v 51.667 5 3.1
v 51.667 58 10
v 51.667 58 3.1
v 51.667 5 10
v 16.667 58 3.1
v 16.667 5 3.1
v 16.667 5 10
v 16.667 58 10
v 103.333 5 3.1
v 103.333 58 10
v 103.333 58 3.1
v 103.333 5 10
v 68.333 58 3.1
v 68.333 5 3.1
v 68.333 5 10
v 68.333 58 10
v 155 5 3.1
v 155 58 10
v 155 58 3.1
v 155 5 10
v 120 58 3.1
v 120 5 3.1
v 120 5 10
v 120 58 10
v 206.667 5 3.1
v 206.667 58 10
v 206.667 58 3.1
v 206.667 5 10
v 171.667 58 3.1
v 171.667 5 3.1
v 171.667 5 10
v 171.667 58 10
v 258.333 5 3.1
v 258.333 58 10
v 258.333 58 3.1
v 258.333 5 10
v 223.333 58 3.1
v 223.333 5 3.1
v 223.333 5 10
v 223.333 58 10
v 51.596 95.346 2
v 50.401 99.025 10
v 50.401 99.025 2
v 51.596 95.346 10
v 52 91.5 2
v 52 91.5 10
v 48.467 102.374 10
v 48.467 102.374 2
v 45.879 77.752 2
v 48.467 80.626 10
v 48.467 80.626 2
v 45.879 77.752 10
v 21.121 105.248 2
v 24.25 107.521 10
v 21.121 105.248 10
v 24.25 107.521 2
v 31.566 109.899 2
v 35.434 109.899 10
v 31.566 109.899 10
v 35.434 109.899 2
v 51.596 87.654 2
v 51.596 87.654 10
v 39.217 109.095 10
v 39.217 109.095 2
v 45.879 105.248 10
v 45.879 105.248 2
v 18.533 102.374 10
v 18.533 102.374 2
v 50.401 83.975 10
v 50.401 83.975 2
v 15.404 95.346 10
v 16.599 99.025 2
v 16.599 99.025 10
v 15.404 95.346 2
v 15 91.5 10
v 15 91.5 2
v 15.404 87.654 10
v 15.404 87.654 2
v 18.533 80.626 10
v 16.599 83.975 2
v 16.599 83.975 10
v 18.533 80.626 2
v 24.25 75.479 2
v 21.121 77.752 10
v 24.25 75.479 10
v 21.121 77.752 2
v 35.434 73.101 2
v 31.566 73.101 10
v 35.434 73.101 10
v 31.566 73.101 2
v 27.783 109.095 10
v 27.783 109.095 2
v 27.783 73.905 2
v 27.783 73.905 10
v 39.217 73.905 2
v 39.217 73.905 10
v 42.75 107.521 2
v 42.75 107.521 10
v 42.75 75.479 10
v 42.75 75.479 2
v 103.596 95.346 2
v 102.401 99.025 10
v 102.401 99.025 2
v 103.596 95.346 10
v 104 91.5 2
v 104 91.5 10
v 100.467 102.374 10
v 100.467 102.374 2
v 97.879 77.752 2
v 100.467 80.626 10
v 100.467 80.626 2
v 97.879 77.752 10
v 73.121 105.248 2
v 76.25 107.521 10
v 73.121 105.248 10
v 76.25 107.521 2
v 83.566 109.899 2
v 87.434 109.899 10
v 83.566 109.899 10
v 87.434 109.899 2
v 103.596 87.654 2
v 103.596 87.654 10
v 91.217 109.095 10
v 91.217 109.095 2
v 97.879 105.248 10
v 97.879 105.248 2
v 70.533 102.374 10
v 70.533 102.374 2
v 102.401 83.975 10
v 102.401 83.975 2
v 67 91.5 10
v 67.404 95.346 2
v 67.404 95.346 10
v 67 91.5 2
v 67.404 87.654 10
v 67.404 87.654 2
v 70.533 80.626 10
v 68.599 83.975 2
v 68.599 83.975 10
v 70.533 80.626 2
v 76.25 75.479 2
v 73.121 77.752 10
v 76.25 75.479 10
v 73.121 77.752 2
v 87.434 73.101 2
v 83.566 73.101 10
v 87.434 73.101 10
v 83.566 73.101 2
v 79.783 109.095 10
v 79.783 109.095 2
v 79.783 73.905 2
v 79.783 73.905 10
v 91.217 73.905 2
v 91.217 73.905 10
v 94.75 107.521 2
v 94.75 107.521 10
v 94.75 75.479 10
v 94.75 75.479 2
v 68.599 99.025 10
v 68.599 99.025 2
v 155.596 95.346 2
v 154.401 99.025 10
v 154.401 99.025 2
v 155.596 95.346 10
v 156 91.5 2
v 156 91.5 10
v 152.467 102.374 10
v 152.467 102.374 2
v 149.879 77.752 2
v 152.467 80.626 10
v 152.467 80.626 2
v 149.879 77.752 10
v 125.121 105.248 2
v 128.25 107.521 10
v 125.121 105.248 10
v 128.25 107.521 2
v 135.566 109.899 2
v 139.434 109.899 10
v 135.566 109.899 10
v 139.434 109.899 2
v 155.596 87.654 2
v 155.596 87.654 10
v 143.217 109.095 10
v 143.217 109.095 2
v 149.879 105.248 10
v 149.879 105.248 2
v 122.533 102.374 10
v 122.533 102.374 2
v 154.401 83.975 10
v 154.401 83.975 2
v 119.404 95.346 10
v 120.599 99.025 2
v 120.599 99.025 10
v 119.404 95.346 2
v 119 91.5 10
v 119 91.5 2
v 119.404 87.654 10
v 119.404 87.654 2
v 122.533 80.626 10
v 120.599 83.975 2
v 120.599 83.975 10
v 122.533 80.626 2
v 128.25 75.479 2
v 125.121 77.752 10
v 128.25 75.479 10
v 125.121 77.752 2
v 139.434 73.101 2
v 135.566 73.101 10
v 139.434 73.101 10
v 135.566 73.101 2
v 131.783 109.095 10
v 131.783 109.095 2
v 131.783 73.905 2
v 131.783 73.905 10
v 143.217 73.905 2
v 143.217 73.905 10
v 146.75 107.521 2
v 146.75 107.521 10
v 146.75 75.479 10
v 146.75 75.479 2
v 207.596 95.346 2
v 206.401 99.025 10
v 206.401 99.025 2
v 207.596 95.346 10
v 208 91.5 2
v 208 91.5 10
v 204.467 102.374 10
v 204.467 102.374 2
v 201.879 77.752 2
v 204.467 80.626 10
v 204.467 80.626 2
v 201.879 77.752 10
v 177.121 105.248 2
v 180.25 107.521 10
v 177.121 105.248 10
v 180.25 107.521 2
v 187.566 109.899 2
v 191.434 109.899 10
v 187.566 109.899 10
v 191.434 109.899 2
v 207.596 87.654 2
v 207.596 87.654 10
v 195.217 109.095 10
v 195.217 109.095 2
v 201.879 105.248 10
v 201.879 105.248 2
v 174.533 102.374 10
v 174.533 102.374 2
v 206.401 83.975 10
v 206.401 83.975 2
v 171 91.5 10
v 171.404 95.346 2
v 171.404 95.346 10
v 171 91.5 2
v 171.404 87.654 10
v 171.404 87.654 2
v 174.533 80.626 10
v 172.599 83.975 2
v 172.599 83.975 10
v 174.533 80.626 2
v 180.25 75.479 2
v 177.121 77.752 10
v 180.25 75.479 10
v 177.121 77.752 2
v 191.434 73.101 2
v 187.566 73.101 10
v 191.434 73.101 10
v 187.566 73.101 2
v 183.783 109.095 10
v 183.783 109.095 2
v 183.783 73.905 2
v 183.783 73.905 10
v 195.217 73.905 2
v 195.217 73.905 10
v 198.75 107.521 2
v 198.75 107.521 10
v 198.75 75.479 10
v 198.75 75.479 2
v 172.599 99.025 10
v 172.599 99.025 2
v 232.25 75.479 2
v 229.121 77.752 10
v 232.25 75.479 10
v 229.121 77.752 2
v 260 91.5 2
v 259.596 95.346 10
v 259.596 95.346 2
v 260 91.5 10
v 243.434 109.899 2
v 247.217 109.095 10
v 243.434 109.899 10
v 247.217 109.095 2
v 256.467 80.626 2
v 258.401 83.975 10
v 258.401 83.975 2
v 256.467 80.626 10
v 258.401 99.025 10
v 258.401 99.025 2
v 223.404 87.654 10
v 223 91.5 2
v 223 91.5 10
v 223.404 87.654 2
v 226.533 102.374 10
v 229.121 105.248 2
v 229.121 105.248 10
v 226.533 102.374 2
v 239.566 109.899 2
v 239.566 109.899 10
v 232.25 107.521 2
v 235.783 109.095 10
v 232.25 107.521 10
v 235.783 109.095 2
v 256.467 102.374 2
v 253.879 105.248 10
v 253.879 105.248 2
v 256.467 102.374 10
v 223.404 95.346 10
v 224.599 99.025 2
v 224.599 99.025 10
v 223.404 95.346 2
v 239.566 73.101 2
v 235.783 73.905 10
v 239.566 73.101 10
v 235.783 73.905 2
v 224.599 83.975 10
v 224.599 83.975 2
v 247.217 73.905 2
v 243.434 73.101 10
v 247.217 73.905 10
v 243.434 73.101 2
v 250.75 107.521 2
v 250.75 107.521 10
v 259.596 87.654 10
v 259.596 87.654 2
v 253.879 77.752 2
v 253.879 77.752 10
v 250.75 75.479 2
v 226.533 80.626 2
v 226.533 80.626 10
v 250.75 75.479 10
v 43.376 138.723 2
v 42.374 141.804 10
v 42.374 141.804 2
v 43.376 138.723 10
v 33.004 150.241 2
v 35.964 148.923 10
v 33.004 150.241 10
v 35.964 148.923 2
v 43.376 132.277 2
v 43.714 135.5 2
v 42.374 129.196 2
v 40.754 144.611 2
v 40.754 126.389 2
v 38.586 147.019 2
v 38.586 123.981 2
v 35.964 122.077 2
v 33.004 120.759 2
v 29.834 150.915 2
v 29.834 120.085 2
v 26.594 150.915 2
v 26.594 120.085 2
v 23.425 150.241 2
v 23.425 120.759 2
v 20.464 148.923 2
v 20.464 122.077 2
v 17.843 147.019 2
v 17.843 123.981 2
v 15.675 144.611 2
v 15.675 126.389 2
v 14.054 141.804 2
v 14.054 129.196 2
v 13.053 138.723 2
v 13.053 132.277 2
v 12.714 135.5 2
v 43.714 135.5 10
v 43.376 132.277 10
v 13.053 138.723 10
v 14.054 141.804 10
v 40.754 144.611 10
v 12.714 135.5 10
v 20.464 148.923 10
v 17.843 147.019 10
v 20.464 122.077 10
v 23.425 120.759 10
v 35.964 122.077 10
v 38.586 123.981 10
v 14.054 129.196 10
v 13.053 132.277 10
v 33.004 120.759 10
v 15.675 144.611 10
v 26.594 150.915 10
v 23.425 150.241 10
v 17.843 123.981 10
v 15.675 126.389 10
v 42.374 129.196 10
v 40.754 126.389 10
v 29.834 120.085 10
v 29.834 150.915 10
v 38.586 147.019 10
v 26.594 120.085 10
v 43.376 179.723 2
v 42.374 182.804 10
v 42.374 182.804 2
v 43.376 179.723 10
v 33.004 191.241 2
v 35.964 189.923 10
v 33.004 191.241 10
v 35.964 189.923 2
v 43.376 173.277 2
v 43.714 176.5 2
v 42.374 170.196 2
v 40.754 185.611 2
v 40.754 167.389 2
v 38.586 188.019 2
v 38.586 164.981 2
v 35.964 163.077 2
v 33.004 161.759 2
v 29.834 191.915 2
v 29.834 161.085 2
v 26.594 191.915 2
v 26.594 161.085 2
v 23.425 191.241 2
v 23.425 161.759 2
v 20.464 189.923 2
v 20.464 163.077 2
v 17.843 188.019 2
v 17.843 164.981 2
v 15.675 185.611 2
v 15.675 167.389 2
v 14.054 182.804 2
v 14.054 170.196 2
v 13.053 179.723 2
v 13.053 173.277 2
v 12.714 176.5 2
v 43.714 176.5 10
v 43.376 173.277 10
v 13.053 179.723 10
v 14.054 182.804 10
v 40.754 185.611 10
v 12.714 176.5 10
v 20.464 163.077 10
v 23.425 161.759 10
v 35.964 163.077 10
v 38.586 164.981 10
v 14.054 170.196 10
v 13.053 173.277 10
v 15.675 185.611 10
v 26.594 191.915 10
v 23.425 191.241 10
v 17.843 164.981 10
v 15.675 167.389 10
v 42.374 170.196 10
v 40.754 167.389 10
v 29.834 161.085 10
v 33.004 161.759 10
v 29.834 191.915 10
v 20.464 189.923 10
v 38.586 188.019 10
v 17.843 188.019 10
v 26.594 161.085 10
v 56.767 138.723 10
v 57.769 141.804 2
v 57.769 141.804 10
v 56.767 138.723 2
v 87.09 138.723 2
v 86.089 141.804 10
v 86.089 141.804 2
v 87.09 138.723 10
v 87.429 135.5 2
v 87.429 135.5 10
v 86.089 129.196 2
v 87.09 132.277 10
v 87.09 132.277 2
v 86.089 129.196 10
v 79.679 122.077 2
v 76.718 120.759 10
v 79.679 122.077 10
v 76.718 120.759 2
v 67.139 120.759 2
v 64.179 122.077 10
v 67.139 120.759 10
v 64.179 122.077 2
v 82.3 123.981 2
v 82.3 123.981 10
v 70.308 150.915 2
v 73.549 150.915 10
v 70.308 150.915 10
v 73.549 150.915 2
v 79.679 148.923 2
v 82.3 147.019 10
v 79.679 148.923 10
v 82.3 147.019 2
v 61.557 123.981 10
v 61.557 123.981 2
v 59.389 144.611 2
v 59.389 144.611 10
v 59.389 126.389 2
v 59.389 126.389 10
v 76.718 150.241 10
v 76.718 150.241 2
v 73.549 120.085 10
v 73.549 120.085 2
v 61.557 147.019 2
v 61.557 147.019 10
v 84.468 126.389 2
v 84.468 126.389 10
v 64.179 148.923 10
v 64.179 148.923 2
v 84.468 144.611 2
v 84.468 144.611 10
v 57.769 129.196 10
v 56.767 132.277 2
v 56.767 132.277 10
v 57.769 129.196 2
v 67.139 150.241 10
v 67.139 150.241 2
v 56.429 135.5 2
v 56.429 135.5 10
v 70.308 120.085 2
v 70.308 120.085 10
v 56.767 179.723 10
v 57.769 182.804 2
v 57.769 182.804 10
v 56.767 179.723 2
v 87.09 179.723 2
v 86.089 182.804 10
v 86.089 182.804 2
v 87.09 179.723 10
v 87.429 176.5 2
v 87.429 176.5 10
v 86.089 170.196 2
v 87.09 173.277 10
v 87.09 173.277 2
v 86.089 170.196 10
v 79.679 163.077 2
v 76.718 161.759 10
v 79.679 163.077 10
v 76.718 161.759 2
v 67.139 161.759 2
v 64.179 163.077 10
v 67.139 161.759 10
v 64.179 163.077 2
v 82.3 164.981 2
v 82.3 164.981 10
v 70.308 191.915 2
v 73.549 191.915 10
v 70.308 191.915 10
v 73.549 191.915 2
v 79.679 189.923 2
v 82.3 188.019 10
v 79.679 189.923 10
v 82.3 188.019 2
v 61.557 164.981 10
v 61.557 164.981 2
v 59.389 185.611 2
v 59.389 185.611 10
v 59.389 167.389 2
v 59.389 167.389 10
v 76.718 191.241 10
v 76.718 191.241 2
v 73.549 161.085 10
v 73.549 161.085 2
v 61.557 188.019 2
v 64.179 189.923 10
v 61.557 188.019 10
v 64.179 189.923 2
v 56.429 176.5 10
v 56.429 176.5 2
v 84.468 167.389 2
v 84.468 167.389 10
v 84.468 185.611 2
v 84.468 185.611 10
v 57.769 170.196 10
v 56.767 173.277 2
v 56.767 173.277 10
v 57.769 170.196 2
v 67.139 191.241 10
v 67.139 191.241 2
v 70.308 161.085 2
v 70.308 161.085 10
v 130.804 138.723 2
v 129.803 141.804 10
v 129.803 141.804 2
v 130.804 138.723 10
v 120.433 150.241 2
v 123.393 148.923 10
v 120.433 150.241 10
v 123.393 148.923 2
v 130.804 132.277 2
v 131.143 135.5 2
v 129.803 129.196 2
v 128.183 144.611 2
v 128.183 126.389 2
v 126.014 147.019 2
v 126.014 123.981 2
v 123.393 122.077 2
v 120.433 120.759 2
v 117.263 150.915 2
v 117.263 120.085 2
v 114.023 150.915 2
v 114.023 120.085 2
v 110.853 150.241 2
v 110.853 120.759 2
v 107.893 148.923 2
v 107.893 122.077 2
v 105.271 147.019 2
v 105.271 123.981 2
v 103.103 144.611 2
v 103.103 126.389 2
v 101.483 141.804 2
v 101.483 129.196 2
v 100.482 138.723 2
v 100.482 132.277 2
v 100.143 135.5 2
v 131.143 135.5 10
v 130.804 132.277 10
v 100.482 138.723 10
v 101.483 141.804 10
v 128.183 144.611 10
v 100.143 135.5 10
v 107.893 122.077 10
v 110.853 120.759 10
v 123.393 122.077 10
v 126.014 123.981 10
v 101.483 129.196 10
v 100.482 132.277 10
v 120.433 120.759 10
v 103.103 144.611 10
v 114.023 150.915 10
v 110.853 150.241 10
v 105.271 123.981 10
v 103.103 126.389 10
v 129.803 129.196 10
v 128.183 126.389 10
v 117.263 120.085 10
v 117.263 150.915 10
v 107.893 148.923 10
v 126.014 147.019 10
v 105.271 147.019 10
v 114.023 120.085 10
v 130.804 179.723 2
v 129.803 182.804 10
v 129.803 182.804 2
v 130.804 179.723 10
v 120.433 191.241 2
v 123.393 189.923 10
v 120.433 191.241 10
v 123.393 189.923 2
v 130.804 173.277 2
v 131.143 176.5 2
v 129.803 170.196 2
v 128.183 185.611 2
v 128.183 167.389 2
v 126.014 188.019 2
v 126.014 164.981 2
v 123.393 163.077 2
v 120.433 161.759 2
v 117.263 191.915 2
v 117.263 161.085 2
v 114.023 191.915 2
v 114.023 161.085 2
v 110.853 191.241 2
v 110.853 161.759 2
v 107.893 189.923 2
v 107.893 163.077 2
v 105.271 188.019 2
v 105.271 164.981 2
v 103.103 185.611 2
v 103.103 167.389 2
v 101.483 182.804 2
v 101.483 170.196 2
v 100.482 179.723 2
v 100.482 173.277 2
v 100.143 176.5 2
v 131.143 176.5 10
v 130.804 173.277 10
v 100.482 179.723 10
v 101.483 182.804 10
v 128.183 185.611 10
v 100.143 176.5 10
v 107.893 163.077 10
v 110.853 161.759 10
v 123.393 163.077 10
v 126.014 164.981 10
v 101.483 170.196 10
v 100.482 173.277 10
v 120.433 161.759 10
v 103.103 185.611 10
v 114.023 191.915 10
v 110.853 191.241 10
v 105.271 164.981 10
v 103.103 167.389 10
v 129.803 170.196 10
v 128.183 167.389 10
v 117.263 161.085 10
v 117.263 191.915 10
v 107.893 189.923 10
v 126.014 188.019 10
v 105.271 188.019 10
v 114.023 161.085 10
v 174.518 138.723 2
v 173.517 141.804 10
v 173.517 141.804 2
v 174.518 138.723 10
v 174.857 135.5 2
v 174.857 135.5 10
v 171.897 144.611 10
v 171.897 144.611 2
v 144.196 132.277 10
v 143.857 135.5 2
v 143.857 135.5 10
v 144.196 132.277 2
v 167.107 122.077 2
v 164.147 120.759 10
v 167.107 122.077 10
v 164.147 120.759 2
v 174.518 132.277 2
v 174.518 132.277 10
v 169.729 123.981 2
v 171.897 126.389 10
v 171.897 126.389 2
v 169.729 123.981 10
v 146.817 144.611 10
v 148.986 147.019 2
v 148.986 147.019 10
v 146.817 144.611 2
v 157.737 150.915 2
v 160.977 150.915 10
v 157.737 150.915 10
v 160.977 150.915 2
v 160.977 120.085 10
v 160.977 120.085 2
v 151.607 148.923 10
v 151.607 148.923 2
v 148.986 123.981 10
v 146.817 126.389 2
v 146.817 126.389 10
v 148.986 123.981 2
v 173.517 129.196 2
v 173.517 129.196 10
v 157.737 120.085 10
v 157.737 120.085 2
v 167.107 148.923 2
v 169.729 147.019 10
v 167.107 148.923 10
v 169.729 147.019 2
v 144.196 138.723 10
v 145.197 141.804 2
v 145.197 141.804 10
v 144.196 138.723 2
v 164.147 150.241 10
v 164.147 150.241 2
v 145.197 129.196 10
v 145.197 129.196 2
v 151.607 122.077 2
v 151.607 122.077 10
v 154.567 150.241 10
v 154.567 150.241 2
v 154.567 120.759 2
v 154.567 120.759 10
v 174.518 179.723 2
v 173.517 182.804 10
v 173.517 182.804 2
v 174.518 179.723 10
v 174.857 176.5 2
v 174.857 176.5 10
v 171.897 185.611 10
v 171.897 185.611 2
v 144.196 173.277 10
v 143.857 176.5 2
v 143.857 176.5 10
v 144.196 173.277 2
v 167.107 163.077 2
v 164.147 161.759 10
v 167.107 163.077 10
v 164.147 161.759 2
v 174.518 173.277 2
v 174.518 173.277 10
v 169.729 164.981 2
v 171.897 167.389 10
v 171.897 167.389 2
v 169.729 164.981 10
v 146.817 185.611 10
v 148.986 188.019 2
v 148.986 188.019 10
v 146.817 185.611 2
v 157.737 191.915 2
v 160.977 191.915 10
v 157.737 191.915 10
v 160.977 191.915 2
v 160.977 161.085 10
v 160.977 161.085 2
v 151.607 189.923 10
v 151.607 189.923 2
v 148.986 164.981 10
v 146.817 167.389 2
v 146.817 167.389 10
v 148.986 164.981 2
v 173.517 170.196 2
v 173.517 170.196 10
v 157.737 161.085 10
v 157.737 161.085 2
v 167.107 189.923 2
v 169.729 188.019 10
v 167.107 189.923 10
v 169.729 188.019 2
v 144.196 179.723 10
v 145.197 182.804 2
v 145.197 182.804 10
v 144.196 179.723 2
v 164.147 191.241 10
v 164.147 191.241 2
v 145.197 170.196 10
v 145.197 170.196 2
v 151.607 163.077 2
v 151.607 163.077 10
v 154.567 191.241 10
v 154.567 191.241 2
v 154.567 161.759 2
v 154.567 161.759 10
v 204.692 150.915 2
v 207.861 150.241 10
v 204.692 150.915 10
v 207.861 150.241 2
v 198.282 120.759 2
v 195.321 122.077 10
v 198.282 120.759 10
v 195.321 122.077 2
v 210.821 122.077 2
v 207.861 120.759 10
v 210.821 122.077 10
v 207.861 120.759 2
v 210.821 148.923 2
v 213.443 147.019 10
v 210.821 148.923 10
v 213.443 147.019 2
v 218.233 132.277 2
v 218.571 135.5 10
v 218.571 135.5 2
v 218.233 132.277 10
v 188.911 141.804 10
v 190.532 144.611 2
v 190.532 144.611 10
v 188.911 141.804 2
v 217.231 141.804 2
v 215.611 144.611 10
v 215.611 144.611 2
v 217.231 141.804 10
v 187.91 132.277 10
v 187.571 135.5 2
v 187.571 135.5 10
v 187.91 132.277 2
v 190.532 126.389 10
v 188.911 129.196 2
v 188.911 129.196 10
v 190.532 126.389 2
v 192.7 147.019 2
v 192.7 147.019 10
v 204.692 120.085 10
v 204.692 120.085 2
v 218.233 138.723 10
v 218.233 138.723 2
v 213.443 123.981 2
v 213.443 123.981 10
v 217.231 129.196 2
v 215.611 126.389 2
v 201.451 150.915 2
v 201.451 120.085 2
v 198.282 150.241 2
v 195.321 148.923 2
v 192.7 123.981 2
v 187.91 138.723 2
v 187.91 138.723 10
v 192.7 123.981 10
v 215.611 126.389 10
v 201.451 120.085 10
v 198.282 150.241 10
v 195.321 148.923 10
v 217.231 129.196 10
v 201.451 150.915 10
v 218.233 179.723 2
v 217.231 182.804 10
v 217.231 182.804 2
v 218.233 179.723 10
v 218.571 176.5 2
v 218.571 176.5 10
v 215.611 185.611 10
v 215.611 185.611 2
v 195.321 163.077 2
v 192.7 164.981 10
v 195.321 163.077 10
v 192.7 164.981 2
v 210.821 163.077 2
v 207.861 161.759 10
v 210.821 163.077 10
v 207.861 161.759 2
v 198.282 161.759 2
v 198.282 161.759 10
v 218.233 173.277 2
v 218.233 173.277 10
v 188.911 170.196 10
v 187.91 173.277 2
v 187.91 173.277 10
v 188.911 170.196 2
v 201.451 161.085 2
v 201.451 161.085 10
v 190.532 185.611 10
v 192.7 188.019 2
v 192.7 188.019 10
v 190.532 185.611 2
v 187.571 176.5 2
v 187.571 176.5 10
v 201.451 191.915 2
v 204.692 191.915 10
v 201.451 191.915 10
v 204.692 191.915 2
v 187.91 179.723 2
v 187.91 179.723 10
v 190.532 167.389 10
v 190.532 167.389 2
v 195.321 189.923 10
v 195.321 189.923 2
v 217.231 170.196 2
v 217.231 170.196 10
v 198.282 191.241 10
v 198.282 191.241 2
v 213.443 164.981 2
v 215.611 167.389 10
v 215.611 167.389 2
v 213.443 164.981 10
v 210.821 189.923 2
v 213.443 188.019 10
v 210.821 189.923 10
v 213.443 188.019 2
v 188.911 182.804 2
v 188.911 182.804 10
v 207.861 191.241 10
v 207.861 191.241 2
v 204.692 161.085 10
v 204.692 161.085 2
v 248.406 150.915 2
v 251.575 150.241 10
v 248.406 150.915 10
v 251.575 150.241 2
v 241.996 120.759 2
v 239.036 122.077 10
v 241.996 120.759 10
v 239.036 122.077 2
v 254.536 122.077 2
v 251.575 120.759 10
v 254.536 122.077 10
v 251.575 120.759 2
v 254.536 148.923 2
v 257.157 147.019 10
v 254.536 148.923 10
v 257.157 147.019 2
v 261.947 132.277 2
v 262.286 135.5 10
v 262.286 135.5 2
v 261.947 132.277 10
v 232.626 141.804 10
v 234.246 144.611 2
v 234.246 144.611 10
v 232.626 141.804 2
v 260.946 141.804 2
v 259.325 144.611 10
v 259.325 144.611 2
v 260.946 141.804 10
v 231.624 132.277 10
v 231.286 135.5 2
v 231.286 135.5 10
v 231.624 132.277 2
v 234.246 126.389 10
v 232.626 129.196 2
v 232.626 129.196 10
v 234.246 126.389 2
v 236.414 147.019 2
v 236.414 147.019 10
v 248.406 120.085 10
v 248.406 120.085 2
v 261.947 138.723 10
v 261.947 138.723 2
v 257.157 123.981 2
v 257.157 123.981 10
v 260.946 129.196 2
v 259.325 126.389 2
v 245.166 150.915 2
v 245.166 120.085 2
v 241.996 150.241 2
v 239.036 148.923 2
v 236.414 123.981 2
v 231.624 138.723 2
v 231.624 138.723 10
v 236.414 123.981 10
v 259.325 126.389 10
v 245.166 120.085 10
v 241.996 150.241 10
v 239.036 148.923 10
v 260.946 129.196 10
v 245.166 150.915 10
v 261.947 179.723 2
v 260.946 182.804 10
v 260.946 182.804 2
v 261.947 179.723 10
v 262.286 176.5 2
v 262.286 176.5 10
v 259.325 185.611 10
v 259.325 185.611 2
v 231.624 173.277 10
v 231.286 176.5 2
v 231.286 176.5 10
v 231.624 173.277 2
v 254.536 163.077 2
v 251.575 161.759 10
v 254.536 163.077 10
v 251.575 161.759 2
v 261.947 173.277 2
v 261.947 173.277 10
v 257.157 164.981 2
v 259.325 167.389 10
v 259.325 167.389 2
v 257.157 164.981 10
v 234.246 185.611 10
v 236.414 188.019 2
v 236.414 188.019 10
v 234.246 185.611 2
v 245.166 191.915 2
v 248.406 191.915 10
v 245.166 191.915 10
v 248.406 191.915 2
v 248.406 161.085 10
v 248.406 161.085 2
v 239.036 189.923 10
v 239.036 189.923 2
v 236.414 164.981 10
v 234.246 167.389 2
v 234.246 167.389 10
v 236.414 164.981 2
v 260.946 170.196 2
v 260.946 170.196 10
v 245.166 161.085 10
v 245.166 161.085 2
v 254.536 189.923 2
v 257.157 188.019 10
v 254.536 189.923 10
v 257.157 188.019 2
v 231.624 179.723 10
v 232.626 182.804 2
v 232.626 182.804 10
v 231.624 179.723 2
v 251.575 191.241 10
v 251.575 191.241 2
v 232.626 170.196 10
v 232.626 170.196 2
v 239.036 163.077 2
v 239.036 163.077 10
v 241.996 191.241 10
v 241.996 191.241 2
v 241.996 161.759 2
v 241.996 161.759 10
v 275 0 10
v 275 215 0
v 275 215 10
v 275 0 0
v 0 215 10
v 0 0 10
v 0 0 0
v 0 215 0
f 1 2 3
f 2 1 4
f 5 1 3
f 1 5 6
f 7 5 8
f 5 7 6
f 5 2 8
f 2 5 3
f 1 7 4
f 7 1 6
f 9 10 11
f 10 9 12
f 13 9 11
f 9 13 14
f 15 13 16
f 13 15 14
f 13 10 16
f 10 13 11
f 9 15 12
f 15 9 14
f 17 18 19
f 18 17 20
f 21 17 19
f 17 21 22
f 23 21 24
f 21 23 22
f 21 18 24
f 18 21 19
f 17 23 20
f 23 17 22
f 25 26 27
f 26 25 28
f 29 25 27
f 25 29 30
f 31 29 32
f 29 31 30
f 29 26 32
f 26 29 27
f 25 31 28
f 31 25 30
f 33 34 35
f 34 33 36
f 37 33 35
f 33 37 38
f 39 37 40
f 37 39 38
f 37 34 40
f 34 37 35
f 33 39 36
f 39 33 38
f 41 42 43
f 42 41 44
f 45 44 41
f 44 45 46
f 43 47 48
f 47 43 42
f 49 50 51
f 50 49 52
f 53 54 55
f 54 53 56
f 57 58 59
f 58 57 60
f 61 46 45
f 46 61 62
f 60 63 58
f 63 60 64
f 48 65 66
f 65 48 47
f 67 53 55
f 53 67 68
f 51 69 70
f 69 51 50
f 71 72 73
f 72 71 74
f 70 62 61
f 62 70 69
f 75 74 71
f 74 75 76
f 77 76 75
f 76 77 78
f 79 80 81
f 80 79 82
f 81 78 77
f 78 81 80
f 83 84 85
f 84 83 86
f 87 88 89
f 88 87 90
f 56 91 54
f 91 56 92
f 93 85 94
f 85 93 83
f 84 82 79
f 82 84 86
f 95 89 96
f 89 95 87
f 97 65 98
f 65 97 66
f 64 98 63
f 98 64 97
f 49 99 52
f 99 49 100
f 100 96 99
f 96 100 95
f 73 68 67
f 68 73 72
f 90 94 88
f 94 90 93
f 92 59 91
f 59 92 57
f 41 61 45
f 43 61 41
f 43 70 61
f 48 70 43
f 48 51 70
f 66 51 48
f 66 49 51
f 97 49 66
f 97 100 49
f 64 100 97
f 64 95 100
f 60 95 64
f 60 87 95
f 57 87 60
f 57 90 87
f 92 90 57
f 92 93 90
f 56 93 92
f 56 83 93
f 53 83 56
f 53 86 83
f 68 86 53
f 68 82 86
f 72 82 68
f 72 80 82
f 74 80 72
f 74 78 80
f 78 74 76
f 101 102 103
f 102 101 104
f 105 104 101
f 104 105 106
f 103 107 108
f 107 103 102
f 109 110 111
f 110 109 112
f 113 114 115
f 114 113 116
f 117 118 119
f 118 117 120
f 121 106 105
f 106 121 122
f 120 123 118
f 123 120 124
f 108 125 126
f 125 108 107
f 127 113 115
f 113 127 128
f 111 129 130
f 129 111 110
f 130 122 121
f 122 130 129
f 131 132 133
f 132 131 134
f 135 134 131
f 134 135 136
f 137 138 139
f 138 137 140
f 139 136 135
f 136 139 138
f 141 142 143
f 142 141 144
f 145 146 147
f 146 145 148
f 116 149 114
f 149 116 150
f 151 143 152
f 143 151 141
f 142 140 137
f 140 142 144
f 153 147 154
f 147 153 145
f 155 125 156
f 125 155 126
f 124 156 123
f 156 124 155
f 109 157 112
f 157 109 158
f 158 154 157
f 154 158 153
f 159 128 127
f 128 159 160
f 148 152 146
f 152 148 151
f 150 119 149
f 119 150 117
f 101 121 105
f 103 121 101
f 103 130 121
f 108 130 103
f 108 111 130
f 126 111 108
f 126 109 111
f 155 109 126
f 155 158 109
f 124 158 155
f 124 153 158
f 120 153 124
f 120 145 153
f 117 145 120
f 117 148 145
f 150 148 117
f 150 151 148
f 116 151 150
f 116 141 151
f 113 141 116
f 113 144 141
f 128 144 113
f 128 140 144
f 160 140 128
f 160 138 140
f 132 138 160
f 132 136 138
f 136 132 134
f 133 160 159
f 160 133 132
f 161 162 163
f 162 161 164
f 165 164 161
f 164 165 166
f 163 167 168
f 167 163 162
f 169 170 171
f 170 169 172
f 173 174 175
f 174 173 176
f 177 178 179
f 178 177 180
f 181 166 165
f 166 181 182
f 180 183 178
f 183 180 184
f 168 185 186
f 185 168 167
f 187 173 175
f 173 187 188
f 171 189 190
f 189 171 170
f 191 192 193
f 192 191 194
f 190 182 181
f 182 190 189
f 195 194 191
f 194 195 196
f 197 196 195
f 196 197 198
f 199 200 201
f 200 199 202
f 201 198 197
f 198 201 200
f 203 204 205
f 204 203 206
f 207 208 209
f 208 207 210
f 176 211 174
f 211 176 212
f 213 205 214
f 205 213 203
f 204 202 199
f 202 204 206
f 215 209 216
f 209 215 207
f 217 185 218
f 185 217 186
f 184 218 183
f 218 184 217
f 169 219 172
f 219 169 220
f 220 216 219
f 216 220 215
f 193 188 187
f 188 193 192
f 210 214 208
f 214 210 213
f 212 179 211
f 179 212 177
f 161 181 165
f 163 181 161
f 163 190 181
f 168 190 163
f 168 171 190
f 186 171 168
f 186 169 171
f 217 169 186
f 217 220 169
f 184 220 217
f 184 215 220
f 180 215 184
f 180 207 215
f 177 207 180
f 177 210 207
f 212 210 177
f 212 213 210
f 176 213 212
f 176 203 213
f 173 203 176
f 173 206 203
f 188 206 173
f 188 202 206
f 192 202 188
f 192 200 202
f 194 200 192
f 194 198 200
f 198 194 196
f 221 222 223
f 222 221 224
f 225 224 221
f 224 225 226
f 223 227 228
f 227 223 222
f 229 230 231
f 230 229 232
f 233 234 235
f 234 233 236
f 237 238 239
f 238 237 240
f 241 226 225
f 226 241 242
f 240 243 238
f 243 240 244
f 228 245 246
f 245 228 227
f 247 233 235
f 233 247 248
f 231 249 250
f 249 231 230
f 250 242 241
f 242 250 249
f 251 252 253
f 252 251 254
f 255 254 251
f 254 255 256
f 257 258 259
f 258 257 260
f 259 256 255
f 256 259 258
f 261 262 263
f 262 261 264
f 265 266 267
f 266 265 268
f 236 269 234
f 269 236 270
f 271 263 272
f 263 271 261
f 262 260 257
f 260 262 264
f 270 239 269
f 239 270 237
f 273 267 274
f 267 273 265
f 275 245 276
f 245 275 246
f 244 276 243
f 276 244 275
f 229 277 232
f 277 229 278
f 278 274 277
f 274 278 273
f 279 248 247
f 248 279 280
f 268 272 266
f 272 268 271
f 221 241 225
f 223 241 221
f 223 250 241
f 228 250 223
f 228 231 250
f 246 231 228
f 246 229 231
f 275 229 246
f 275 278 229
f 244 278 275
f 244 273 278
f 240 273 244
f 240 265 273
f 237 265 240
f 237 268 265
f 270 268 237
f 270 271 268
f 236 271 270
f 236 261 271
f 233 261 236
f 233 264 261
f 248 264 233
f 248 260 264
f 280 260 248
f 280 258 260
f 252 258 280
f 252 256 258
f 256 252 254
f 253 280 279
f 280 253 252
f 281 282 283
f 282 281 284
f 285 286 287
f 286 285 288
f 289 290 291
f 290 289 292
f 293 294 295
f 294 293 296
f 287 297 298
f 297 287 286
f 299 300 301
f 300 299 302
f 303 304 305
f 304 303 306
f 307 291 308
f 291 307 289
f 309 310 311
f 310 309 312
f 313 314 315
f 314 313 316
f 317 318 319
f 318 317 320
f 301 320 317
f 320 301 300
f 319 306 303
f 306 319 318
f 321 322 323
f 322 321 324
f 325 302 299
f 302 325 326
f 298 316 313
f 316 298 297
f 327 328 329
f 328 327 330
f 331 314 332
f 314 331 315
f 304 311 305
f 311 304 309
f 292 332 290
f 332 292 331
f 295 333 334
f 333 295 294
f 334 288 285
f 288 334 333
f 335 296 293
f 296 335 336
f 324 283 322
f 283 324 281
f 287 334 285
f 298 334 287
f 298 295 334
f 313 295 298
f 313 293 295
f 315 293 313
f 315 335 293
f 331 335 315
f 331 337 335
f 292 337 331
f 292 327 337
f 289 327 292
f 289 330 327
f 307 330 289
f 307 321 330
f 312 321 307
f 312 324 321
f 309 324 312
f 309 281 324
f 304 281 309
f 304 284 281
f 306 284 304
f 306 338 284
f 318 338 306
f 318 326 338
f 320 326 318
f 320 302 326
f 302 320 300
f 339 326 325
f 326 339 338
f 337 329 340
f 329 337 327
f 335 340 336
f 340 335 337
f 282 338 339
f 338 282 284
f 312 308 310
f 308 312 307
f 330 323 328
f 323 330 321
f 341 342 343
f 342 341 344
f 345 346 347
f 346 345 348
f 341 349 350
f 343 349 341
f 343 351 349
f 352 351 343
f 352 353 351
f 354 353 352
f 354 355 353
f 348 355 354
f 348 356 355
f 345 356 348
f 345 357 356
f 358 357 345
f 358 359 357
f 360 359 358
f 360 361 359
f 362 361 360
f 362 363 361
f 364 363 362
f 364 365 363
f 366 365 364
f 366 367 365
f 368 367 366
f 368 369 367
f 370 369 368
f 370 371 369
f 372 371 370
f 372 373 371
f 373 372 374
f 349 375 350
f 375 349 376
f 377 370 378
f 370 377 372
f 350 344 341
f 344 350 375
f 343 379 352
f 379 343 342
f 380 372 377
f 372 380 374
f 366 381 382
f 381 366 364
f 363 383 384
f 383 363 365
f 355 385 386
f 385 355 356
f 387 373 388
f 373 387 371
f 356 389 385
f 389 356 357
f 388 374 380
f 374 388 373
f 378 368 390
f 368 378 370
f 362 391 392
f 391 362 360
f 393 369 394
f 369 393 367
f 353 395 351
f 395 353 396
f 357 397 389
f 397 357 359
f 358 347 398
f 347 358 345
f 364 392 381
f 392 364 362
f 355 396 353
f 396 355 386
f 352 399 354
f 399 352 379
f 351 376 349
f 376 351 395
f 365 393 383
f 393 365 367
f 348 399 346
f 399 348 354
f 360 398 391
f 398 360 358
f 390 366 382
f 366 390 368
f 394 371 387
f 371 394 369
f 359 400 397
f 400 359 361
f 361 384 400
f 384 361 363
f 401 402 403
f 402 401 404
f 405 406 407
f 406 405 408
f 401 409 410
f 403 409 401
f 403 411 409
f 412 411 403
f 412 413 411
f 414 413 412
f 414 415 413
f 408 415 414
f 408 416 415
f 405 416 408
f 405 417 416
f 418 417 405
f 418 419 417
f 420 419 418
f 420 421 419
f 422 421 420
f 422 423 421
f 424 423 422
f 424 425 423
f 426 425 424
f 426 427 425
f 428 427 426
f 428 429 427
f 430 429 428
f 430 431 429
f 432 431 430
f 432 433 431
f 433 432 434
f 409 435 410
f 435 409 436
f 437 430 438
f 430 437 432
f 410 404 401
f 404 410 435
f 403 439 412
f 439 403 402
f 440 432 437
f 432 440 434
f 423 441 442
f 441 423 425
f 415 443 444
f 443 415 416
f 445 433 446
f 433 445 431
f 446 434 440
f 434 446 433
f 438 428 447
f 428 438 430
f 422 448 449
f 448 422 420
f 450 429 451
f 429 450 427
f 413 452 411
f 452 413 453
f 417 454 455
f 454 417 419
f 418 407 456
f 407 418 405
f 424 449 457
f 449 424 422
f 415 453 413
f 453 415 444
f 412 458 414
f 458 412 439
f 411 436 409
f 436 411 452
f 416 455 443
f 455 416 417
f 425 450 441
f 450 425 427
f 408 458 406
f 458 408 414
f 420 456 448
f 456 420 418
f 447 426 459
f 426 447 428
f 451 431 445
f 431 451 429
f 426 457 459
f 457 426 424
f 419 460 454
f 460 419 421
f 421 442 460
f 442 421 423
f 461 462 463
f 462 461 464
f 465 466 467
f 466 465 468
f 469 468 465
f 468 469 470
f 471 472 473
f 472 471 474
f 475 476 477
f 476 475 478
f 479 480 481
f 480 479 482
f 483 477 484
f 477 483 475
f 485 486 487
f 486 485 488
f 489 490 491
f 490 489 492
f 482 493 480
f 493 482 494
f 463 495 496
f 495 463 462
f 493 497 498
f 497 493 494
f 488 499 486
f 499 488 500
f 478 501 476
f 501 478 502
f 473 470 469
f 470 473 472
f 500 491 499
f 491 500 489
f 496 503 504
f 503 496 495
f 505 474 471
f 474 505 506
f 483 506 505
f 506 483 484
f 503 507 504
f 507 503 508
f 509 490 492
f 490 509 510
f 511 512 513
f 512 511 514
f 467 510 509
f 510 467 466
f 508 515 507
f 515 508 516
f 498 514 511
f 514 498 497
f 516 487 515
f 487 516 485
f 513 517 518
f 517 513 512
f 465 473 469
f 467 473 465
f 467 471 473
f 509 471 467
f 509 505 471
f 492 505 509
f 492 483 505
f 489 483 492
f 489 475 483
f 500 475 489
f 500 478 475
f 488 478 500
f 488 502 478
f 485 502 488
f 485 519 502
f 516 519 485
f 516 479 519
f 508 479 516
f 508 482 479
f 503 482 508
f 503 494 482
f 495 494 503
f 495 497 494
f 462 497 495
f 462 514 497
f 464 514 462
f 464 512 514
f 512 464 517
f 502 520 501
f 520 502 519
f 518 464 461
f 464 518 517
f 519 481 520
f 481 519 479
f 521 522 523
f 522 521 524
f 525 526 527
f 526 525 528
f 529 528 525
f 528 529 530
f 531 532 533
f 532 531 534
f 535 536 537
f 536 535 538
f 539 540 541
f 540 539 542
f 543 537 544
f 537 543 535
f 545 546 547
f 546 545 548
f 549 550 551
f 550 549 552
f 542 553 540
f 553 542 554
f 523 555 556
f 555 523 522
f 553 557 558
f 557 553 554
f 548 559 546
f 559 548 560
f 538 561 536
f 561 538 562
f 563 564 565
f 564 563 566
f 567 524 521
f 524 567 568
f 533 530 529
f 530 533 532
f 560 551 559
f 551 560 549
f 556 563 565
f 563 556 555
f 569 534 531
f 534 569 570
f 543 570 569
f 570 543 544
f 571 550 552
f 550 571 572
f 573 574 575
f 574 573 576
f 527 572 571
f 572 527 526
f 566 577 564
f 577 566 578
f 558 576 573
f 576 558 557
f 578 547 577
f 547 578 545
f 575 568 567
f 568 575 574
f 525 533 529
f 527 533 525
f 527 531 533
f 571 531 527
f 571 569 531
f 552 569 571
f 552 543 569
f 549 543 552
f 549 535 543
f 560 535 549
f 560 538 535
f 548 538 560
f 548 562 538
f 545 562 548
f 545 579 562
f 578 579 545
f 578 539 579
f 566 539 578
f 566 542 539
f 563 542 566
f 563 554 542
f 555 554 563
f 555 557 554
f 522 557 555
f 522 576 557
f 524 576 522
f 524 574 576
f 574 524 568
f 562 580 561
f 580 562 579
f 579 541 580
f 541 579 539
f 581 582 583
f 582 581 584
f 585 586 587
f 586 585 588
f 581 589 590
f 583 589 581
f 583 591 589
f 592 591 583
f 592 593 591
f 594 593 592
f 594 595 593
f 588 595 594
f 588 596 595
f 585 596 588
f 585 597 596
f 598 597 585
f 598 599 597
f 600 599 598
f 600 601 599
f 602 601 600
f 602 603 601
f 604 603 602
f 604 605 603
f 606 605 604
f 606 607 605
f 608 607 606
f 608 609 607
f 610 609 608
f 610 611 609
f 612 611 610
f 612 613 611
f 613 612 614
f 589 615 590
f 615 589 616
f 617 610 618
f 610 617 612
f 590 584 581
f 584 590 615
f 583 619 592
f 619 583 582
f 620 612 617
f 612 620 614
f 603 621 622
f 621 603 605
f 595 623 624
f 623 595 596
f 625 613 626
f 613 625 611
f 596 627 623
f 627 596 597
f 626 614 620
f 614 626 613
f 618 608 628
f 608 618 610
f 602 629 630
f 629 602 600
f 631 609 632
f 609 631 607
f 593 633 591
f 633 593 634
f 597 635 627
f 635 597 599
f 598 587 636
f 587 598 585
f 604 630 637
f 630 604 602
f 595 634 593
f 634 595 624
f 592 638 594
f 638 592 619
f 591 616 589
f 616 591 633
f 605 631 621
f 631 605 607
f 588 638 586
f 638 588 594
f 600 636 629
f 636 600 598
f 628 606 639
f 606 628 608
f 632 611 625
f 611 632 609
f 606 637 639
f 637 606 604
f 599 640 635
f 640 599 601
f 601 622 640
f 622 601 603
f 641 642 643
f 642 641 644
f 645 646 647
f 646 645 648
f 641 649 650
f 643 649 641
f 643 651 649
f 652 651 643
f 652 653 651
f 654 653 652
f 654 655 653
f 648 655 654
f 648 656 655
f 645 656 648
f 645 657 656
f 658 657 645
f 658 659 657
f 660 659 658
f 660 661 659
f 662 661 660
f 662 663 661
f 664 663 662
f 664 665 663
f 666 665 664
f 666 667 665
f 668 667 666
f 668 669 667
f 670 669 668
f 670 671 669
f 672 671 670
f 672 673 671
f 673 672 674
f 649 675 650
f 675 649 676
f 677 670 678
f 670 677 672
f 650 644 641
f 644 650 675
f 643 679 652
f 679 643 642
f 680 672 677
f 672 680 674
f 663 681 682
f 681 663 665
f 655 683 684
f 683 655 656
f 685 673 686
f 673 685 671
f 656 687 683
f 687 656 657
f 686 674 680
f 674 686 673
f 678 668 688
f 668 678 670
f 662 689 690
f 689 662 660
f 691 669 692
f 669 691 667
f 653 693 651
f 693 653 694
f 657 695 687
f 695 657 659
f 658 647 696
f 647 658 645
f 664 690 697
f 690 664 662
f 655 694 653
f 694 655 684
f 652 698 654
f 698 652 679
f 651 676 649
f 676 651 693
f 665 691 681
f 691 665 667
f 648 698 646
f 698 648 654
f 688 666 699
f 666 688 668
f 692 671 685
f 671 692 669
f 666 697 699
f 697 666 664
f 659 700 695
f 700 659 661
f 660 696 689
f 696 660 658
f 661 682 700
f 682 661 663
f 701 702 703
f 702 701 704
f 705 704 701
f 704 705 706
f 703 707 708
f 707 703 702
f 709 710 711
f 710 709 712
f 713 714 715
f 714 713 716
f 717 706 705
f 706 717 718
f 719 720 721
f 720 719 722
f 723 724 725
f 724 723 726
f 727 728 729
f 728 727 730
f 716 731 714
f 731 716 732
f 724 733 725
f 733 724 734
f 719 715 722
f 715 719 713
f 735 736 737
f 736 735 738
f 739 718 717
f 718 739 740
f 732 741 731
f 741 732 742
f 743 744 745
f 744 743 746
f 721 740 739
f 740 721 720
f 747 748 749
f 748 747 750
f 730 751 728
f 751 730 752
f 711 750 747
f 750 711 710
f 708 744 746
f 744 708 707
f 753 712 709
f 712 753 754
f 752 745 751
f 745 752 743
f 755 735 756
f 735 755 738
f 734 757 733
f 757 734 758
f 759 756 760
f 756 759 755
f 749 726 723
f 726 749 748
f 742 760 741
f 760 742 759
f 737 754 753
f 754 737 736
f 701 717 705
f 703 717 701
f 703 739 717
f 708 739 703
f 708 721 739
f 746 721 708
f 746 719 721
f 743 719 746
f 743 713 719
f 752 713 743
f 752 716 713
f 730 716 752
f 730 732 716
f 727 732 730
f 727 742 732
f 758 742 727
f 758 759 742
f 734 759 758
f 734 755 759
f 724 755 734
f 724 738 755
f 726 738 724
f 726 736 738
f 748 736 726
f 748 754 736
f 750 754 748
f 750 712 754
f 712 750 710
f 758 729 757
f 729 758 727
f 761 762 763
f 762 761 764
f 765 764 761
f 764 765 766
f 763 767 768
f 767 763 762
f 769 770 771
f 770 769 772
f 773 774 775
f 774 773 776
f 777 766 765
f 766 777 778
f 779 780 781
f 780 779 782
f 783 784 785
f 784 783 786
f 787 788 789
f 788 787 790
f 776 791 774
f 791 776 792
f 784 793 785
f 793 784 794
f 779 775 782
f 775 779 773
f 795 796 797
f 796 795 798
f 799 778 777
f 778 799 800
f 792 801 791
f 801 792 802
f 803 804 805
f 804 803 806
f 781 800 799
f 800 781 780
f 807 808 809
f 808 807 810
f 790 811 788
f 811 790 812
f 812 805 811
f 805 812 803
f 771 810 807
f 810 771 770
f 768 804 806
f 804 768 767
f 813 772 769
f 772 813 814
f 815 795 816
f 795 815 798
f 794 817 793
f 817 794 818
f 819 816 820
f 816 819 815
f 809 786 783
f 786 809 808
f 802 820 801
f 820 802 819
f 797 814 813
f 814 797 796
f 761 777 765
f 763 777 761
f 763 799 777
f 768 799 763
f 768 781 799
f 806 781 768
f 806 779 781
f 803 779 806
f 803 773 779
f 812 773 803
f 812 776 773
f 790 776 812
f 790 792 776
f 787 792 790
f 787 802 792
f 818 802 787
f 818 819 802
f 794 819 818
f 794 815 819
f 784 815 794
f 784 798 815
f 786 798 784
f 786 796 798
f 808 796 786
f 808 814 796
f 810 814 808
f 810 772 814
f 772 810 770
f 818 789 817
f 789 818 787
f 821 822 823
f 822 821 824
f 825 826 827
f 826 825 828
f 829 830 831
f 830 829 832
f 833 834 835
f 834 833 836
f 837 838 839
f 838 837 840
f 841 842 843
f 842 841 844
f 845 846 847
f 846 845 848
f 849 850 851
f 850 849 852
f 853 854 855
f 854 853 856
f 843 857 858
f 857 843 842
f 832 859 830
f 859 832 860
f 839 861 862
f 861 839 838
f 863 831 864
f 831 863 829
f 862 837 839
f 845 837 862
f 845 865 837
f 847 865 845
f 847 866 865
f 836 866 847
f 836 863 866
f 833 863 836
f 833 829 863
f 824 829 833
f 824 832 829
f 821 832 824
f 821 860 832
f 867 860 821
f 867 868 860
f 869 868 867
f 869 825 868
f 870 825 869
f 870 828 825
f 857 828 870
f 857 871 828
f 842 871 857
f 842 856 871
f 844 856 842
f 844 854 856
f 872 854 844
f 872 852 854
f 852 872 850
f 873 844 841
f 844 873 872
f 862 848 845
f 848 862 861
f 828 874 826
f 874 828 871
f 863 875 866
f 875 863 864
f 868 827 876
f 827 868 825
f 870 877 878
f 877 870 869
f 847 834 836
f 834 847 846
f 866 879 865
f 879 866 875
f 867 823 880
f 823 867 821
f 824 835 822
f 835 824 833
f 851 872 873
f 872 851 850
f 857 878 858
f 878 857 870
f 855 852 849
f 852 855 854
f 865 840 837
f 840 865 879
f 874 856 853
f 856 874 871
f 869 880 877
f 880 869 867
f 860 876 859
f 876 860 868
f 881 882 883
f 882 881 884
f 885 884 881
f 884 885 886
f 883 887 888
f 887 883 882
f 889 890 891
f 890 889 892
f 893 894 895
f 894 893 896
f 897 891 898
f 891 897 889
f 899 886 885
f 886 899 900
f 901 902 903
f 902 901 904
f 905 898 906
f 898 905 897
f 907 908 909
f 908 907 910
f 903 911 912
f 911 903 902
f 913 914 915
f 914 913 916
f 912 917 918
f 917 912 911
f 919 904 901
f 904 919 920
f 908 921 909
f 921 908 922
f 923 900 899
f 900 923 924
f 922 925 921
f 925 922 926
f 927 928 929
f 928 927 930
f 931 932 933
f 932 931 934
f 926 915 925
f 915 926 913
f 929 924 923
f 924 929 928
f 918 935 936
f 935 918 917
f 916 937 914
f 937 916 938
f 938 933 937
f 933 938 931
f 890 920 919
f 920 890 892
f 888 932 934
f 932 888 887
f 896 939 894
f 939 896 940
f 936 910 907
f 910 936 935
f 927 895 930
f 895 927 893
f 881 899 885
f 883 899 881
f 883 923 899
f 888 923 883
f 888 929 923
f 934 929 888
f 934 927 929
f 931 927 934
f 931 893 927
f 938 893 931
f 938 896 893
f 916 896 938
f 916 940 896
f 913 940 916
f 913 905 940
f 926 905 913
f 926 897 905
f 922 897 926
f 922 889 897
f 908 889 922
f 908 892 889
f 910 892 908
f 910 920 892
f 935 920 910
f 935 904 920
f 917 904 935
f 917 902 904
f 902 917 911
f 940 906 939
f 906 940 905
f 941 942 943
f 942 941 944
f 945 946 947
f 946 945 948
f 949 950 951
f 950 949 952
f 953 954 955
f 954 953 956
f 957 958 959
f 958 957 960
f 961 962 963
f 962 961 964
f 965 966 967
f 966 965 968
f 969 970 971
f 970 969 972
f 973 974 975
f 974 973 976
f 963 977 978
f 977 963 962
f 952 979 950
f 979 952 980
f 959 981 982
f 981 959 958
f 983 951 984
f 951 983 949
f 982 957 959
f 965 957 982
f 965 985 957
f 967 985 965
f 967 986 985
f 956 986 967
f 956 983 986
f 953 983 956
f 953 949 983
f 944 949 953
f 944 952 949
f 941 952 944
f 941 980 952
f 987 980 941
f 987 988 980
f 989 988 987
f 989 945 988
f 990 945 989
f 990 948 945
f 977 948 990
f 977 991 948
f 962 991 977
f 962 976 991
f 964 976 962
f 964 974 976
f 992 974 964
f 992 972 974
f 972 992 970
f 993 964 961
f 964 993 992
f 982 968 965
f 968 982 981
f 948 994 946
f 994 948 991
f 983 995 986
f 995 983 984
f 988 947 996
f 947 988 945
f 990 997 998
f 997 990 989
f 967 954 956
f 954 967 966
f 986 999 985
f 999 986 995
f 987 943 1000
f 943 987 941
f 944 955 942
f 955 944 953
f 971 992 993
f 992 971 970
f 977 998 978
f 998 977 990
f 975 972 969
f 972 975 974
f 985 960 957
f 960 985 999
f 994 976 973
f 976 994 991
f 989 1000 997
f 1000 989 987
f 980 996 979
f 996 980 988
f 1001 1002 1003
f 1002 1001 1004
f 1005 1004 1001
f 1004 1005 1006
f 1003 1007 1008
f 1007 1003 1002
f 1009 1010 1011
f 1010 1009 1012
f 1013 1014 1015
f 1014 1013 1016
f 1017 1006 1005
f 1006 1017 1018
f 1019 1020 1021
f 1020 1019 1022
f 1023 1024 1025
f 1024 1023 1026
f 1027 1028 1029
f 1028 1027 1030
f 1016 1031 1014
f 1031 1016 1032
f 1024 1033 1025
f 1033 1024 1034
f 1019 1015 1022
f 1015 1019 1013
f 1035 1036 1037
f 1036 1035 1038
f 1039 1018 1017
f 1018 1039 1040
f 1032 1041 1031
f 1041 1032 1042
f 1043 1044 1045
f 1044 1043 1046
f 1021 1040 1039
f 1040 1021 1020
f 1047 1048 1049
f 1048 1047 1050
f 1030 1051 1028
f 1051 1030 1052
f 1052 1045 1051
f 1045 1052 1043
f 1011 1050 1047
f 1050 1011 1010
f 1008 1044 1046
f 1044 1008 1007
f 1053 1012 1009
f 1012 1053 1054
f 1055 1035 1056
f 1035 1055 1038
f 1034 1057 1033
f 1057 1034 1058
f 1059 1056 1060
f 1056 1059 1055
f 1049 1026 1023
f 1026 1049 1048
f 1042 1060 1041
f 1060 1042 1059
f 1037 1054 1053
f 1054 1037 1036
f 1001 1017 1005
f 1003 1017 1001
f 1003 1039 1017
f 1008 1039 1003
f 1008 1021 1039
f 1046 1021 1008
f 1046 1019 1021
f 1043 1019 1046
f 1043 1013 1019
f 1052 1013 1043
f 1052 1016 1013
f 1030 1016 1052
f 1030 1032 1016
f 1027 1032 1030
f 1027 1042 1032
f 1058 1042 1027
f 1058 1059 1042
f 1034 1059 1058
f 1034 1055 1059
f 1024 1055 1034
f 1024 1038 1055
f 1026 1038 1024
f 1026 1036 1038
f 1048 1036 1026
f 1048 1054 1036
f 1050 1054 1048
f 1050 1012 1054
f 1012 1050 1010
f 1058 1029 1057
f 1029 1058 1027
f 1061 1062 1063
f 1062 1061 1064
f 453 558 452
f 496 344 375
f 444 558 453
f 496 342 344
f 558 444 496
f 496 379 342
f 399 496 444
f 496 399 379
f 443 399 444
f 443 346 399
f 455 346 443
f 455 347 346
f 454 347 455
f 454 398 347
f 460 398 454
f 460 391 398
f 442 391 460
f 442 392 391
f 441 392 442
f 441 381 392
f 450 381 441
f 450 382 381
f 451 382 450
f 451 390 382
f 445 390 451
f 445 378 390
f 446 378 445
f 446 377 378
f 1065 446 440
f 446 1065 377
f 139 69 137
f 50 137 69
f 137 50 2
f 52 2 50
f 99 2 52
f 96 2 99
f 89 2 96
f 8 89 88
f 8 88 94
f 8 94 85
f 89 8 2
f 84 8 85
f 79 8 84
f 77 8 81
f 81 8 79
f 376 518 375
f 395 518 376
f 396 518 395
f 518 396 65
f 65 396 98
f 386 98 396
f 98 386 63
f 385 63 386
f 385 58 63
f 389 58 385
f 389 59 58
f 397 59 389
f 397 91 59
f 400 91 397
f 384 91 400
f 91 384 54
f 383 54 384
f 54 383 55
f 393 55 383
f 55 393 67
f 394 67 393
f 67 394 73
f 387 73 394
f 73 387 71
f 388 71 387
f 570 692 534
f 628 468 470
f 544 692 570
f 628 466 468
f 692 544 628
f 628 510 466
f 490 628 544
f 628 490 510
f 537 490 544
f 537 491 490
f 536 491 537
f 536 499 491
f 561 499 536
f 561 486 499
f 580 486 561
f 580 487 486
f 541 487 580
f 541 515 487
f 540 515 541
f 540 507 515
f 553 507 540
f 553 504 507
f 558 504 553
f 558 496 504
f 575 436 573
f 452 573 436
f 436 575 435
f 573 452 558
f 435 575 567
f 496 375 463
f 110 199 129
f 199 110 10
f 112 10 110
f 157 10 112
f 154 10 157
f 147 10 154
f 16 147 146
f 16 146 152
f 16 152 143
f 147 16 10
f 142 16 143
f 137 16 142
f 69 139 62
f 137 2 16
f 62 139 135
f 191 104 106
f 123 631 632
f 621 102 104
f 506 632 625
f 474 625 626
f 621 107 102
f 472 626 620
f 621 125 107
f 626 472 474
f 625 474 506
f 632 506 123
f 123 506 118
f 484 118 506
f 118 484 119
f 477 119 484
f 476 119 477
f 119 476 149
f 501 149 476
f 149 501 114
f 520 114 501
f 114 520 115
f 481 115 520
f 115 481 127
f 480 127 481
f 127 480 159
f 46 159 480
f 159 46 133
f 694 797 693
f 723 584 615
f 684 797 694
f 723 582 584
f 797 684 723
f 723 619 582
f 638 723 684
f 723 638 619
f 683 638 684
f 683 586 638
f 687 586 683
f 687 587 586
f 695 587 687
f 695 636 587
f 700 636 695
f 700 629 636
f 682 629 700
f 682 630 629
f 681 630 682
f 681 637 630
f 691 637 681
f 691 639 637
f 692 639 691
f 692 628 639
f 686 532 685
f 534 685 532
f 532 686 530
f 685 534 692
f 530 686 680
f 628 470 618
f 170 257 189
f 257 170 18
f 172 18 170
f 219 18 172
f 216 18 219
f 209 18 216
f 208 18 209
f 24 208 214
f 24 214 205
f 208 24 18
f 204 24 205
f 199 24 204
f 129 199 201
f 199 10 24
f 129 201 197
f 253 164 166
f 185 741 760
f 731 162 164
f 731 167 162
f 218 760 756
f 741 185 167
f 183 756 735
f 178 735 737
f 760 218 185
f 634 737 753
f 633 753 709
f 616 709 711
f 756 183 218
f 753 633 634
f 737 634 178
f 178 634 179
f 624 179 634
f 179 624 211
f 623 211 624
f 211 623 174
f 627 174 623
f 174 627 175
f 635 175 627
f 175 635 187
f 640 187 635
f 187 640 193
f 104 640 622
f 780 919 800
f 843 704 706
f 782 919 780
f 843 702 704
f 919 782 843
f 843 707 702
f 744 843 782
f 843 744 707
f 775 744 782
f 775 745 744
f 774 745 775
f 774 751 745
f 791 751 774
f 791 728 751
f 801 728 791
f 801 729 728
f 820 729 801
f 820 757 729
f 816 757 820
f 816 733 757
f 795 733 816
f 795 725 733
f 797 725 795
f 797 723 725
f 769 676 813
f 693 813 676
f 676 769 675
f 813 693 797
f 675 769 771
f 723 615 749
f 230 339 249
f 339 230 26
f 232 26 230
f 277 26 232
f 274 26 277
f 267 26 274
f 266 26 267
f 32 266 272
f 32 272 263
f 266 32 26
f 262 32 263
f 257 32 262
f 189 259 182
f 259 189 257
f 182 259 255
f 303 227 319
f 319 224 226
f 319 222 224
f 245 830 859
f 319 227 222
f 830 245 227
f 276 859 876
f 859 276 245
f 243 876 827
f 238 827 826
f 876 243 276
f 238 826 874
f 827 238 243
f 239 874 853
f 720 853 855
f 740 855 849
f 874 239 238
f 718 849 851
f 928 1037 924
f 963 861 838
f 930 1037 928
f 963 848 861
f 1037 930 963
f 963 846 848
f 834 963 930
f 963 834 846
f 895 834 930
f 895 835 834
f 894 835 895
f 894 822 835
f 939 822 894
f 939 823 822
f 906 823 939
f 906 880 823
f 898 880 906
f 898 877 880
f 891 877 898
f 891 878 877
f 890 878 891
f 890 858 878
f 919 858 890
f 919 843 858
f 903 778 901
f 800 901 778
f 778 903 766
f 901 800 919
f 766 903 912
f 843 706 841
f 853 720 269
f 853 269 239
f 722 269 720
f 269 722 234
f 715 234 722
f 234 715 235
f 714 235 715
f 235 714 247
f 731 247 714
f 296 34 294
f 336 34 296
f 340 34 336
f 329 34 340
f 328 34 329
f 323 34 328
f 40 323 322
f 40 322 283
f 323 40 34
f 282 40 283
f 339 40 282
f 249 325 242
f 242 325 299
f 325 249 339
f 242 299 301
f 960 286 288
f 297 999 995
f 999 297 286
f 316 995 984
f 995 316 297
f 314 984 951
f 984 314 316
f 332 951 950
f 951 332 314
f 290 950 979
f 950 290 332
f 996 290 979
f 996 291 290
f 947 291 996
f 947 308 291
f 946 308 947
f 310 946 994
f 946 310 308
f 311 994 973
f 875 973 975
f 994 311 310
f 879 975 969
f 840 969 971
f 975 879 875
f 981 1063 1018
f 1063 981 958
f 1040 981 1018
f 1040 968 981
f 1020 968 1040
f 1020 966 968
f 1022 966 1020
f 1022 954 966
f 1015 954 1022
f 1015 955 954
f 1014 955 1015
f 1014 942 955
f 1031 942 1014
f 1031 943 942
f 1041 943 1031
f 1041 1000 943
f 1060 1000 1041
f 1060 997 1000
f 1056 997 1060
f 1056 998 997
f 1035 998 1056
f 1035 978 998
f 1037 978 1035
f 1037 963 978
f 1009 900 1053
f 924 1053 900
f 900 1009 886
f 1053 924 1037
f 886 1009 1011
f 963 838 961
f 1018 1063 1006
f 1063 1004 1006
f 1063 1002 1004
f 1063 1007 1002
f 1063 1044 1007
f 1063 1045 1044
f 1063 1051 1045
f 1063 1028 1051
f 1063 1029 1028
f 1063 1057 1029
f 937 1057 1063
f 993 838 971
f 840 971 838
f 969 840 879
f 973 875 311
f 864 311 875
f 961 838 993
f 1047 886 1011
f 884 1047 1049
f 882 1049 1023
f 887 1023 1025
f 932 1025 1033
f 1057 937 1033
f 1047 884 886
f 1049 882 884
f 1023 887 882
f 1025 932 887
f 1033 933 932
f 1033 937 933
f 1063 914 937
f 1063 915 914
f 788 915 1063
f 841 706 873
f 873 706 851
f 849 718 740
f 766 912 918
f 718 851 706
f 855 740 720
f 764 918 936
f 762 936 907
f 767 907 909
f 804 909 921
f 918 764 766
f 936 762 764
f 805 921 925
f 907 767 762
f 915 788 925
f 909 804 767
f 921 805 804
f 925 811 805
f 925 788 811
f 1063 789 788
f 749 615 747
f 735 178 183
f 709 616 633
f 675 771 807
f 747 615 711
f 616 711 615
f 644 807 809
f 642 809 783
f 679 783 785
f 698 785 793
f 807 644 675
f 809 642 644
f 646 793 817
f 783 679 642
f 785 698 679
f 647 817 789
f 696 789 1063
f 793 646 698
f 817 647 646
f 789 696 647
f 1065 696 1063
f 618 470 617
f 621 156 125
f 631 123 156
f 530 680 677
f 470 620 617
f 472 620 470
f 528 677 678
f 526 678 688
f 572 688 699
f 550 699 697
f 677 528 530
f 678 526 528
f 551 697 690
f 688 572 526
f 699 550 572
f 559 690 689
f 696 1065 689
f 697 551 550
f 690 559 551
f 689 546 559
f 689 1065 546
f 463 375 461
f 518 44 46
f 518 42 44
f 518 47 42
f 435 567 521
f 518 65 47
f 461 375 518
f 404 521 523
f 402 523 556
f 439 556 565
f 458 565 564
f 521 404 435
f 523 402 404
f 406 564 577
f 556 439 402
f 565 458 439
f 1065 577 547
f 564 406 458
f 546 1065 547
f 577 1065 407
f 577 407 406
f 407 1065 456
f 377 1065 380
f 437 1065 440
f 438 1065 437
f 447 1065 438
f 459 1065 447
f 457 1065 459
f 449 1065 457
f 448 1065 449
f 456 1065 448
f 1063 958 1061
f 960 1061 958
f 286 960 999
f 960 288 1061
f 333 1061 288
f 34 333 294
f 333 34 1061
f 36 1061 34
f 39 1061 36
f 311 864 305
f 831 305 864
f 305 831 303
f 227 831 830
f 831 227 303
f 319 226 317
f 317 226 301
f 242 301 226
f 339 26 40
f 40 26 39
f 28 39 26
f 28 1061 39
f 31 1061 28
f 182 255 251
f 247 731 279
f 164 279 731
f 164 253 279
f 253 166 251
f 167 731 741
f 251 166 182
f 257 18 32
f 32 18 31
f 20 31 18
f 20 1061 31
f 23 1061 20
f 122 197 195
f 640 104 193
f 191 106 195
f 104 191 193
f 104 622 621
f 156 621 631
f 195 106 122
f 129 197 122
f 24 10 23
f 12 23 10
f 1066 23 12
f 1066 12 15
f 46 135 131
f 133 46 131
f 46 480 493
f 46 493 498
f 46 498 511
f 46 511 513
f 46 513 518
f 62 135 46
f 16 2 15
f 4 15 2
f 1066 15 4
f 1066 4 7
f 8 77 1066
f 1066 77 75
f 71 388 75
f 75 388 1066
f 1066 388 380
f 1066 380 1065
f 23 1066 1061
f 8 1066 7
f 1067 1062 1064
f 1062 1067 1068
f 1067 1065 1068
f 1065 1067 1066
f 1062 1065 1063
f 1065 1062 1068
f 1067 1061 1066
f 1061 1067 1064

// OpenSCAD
base_x = 275;
base_y = 215;
base_thickness = 10;

depth = 8; 

small_bottle_diameter = 31;
medium_bottle_diameter = 37;
big_bottle_x = 35;
big_bottle_y = 53;
bottom_margin = 5;
spacing_y = 10;
small_bottle_qty = 6;
medium_bottle_qty = 5;
big_bottle_qty = 5;

small_spacing_x = (base_x - (small_bottle_qty*small_bottle_diameter))/(small_bottle_qty + 1);
big_bottle_spacing_x = (base_x - (big_bottle_qty*big_bottle_x))/(big_bottle_qty + 1);

medium_bottle_spacing_y = 2*spacing_y + big_bottle_y + medium_bottle_diameter/2;
small_y_row1 = spacing_y + big_bottle_y + spacing_y + medium_bottle_diameter + spacing_y + small_bottle_diameter/2;
small_y_row2 = small_y_row1 + spacing_y + small_bottle_diameter;

medium_spacing = (base_x - medium_bottle_qty*medium_bottle_diameter)/(medium_bottle_qty+1);

function small_bottle_x(bottle_number) = (small_spacing_x + small_bottle_diameter/2)+(small_spacing_x + small_bottle_diameter)*bottle_number;

difference() {
  cube([base_x,base_y,10]);
  big_bottles();
  medium_bottles();
  small_bottles();
}

module small_bottles() {
    small_bottle_pair(0);
    small_bottle_pair(1);
    small_bottle_pair(2);
    small_bottle_pair(3);
    small_bottle_pair(4);
    small_bottle_pair(5);
  }

module small_bottle_pair(bottle_number) {
  color("orange") {
    translate([small_bottle_x(bottle_number),small_y_row1,2]){
    cylinder(h=10, d=small_bottle_diameter);
    }
    translate([small_bottle_x(bottle_number),small_y_row2,2]){
      cylinder(h=10, d=small_bottle_diameter);
    }
  }
}

module medium_bottle(number) {
  color("purple") {
    translate([medium_bottle_x(number),medium_bottle_spacing_y,2]) {
      cylinder(h=10, d=medium_bottle_diameter);
    }
  }
}

function medium_bottle_x(bottle_number) = (medium_spacing+medium_bottle_diameter/2)+(medium_spacing+(medium_bottle_diameter))*bottle_number;

module medium_bottles() {
  medium_bottle(0);
  medium_bottle(1);
  medium_bottle(2);
  medium_bottle(3);
  medium_bottle(4);
} 

module big_bottles() {
  big_bottle(0);
  big_bottle(1);
  big_bottle(2);
  big_bottle(3);
  big_bottle(4);
}

module big_bottle(number) {
  translate([(number*big_bottle_x)+(number+1)*(big_bottle_spacing_x),bottom_margin,3.1]) {
    cube([big_bottle_x,big_bottle_y,depth]);  
  }
}
